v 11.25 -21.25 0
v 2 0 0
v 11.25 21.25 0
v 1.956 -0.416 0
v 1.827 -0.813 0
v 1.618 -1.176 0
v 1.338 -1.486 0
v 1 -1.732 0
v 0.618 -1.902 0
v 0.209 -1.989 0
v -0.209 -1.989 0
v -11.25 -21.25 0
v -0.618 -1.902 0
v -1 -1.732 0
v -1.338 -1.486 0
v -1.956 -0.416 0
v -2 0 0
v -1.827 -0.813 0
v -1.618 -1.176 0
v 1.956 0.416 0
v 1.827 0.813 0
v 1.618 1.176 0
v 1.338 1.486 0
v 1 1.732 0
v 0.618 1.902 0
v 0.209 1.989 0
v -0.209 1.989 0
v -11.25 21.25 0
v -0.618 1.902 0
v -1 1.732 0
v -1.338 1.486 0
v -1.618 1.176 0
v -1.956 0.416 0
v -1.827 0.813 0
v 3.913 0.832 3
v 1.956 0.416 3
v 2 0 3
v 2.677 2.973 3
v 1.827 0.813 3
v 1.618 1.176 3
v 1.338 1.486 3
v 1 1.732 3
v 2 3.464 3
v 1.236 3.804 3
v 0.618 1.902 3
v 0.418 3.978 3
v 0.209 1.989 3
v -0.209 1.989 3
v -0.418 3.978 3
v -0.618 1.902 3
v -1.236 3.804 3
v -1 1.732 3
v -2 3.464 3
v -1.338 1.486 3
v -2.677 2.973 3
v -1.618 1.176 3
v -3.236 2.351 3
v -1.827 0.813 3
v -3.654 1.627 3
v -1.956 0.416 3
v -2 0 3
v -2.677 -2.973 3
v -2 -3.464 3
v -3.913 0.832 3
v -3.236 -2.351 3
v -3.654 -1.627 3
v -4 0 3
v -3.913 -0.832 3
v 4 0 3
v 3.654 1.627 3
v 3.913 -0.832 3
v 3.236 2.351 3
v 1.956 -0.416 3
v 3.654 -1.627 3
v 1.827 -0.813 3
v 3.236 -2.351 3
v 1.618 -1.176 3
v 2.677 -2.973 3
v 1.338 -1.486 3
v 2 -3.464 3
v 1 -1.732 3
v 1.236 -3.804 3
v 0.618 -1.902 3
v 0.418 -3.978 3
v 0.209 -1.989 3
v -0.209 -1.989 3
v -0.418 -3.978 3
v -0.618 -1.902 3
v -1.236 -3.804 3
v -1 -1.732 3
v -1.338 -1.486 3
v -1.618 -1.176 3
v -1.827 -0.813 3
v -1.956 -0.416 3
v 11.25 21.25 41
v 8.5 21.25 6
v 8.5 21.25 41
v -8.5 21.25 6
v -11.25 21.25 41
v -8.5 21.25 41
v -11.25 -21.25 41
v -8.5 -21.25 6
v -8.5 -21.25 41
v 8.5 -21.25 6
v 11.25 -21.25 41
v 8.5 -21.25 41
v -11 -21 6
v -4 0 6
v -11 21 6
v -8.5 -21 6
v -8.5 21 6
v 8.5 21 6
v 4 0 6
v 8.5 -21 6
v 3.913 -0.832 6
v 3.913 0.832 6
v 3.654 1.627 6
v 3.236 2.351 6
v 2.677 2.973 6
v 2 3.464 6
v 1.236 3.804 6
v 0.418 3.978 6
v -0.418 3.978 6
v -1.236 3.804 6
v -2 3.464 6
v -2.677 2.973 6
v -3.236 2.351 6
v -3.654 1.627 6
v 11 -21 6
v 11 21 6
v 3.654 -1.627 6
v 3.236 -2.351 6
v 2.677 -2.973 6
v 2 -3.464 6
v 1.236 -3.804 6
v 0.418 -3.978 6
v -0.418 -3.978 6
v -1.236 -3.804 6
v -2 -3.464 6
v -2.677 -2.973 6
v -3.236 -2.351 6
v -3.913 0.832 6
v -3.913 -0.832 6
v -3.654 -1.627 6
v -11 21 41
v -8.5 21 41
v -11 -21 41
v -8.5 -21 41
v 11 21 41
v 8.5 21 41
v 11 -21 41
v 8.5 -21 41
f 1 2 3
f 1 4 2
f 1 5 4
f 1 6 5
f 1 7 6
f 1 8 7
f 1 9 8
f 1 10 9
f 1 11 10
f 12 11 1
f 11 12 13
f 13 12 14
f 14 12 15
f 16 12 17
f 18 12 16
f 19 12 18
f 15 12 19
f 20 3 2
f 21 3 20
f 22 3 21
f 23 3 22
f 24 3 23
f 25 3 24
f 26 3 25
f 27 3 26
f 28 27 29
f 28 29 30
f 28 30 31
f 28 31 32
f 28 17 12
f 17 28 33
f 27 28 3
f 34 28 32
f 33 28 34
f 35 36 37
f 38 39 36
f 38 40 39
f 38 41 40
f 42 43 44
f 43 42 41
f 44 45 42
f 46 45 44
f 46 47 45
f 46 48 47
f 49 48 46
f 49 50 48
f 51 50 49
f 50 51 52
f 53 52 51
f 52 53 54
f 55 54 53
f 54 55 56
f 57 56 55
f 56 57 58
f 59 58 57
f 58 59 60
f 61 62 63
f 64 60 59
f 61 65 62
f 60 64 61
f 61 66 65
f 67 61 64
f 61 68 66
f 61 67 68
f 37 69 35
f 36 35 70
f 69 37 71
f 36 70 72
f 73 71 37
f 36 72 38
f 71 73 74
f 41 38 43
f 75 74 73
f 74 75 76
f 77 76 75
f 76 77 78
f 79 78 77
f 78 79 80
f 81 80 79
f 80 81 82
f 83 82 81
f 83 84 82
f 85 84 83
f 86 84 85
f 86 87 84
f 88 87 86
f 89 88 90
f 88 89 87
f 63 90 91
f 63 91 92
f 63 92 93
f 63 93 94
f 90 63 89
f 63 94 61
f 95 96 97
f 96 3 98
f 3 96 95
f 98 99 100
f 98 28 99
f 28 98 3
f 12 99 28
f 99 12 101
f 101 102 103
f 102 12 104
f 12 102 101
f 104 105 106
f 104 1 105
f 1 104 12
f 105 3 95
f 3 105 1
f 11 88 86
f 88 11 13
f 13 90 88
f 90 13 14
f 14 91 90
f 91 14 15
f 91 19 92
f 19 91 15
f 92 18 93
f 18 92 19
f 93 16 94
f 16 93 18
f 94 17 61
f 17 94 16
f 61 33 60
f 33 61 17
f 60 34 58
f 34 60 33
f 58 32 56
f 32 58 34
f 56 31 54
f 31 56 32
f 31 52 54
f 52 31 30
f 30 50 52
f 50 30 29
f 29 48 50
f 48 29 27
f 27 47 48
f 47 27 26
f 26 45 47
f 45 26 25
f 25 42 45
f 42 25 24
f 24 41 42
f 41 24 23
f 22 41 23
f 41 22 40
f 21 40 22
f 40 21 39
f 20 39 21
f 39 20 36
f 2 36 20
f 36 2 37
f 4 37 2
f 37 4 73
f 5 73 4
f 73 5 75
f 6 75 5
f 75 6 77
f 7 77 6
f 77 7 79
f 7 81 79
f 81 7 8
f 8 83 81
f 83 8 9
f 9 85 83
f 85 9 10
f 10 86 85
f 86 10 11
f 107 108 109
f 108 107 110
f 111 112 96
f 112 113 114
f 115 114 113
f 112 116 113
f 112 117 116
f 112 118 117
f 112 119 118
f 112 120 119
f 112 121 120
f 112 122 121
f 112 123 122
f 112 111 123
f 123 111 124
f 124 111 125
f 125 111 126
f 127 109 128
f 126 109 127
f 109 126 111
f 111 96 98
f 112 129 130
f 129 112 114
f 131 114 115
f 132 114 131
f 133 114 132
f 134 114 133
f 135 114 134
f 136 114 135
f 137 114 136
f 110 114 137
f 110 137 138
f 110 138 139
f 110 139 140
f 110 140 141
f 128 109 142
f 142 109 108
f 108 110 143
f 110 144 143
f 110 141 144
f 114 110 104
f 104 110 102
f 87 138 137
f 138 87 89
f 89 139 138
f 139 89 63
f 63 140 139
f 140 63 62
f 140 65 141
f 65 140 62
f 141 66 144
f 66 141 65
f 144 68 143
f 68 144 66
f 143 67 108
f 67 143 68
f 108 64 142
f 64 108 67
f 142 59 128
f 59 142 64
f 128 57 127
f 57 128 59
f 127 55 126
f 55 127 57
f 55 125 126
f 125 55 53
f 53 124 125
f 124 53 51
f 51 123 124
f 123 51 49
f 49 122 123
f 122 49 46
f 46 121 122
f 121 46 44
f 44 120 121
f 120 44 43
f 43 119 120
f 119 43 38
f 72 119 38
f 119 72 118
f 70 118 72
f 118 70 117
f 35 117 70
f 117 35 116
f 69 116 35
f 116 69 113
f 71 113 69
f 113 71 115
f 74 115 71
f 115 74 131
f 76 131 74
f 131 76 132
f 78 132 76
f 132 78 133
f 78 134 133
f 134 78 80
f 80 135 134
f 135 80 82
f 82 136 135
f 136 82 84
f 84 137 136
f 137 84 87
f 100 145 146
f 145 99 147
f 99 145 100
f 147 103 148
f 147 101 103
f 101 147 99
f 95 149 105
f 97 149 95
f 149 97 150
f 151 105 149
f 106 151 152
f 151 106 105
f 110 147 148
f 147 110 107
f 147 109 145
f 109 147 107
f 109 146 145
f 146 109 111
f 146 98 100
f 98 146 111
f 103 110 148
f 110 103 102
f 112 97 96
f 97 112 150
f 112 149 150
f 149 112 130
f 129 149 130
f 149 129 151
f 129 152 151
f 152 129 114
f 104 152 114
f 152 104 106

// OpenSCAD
powerAdapterWidth = 22;
powerAdapterHeight = 35;
powerAdapterLength = 42;

screwHeadHeight = 3;
screwHeadDiameter = 8;
screwHoleDiameter = 4;

mountThickness = 6;
mountWallThickness = 0.5;


%translate([0,0,powerAdapterHeight/2 + mountThickness])
cube([powerAdapterWidth,powerAdapterLength,powerAdapterHeight], center = true);

linear_extrude( mountThickness - screwHeadHeight )
difference() {
  square(size=[powerAdapterWidth + mountWallThickness,powerAdapterLength + mountWallThickness], center=true);
  circle(d=screwHoleDiameter, center = true, $fn = 30);
}

translate([0,0,mountThickness - screwHeadHeight])
linear_extrude( screwHeadHeight )
difference() {
  square(size=[powerAdapterWidth + mountWallThickness,powerAdapterLength + mountWallThickness], center=true);
  circle(d=screwHeadDiameter, center = true, $fn = 30);
}

translate([0,0,mountThickness])
linear_extrude( powerAdapterHeight )
difference() {
  square(size=[powerAdapterWidth + mountWallThickness,powerAdapterLength + mountWallThickness], center=true);
  union() {
    square(size=[powerAdapterWidth,powerAdapterLength], center=true);
    square(size=[powerAdapterWidth-5,powerAdapterLength+1], center=true);
  }
}

/*translate([0,0, mountThickness + powerAdapterHeight ])*/
/*linear_extrude( mountWallThickness )*/
/*square(size=[powerAdapterWidth + mountWallThickness,powerAdapterLength + mountWallThickness], center=true);*/
